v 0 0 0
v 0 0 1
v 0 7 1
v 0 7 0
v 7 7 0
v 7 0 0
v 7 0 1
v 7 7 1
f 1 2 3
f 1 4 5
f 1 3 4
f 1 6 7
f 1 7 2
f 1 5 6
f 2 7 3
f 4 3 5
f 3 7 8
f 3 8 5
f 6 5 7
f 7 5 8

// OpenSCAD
/* Warning, this is a very basic generator with a lot of approximation 
input data : [TQFP, CMA, 7x7x1.0mm, 32, , A, C04-01174A]
generated by com.zoubworld.electronics.cad.model3d.Basic
Date : Sun Feb 15 10:50:49 CET 2026
*/

//body
color("black")
translate([0,0,0])
cube([7.0,7.0,1.0], center=false);
